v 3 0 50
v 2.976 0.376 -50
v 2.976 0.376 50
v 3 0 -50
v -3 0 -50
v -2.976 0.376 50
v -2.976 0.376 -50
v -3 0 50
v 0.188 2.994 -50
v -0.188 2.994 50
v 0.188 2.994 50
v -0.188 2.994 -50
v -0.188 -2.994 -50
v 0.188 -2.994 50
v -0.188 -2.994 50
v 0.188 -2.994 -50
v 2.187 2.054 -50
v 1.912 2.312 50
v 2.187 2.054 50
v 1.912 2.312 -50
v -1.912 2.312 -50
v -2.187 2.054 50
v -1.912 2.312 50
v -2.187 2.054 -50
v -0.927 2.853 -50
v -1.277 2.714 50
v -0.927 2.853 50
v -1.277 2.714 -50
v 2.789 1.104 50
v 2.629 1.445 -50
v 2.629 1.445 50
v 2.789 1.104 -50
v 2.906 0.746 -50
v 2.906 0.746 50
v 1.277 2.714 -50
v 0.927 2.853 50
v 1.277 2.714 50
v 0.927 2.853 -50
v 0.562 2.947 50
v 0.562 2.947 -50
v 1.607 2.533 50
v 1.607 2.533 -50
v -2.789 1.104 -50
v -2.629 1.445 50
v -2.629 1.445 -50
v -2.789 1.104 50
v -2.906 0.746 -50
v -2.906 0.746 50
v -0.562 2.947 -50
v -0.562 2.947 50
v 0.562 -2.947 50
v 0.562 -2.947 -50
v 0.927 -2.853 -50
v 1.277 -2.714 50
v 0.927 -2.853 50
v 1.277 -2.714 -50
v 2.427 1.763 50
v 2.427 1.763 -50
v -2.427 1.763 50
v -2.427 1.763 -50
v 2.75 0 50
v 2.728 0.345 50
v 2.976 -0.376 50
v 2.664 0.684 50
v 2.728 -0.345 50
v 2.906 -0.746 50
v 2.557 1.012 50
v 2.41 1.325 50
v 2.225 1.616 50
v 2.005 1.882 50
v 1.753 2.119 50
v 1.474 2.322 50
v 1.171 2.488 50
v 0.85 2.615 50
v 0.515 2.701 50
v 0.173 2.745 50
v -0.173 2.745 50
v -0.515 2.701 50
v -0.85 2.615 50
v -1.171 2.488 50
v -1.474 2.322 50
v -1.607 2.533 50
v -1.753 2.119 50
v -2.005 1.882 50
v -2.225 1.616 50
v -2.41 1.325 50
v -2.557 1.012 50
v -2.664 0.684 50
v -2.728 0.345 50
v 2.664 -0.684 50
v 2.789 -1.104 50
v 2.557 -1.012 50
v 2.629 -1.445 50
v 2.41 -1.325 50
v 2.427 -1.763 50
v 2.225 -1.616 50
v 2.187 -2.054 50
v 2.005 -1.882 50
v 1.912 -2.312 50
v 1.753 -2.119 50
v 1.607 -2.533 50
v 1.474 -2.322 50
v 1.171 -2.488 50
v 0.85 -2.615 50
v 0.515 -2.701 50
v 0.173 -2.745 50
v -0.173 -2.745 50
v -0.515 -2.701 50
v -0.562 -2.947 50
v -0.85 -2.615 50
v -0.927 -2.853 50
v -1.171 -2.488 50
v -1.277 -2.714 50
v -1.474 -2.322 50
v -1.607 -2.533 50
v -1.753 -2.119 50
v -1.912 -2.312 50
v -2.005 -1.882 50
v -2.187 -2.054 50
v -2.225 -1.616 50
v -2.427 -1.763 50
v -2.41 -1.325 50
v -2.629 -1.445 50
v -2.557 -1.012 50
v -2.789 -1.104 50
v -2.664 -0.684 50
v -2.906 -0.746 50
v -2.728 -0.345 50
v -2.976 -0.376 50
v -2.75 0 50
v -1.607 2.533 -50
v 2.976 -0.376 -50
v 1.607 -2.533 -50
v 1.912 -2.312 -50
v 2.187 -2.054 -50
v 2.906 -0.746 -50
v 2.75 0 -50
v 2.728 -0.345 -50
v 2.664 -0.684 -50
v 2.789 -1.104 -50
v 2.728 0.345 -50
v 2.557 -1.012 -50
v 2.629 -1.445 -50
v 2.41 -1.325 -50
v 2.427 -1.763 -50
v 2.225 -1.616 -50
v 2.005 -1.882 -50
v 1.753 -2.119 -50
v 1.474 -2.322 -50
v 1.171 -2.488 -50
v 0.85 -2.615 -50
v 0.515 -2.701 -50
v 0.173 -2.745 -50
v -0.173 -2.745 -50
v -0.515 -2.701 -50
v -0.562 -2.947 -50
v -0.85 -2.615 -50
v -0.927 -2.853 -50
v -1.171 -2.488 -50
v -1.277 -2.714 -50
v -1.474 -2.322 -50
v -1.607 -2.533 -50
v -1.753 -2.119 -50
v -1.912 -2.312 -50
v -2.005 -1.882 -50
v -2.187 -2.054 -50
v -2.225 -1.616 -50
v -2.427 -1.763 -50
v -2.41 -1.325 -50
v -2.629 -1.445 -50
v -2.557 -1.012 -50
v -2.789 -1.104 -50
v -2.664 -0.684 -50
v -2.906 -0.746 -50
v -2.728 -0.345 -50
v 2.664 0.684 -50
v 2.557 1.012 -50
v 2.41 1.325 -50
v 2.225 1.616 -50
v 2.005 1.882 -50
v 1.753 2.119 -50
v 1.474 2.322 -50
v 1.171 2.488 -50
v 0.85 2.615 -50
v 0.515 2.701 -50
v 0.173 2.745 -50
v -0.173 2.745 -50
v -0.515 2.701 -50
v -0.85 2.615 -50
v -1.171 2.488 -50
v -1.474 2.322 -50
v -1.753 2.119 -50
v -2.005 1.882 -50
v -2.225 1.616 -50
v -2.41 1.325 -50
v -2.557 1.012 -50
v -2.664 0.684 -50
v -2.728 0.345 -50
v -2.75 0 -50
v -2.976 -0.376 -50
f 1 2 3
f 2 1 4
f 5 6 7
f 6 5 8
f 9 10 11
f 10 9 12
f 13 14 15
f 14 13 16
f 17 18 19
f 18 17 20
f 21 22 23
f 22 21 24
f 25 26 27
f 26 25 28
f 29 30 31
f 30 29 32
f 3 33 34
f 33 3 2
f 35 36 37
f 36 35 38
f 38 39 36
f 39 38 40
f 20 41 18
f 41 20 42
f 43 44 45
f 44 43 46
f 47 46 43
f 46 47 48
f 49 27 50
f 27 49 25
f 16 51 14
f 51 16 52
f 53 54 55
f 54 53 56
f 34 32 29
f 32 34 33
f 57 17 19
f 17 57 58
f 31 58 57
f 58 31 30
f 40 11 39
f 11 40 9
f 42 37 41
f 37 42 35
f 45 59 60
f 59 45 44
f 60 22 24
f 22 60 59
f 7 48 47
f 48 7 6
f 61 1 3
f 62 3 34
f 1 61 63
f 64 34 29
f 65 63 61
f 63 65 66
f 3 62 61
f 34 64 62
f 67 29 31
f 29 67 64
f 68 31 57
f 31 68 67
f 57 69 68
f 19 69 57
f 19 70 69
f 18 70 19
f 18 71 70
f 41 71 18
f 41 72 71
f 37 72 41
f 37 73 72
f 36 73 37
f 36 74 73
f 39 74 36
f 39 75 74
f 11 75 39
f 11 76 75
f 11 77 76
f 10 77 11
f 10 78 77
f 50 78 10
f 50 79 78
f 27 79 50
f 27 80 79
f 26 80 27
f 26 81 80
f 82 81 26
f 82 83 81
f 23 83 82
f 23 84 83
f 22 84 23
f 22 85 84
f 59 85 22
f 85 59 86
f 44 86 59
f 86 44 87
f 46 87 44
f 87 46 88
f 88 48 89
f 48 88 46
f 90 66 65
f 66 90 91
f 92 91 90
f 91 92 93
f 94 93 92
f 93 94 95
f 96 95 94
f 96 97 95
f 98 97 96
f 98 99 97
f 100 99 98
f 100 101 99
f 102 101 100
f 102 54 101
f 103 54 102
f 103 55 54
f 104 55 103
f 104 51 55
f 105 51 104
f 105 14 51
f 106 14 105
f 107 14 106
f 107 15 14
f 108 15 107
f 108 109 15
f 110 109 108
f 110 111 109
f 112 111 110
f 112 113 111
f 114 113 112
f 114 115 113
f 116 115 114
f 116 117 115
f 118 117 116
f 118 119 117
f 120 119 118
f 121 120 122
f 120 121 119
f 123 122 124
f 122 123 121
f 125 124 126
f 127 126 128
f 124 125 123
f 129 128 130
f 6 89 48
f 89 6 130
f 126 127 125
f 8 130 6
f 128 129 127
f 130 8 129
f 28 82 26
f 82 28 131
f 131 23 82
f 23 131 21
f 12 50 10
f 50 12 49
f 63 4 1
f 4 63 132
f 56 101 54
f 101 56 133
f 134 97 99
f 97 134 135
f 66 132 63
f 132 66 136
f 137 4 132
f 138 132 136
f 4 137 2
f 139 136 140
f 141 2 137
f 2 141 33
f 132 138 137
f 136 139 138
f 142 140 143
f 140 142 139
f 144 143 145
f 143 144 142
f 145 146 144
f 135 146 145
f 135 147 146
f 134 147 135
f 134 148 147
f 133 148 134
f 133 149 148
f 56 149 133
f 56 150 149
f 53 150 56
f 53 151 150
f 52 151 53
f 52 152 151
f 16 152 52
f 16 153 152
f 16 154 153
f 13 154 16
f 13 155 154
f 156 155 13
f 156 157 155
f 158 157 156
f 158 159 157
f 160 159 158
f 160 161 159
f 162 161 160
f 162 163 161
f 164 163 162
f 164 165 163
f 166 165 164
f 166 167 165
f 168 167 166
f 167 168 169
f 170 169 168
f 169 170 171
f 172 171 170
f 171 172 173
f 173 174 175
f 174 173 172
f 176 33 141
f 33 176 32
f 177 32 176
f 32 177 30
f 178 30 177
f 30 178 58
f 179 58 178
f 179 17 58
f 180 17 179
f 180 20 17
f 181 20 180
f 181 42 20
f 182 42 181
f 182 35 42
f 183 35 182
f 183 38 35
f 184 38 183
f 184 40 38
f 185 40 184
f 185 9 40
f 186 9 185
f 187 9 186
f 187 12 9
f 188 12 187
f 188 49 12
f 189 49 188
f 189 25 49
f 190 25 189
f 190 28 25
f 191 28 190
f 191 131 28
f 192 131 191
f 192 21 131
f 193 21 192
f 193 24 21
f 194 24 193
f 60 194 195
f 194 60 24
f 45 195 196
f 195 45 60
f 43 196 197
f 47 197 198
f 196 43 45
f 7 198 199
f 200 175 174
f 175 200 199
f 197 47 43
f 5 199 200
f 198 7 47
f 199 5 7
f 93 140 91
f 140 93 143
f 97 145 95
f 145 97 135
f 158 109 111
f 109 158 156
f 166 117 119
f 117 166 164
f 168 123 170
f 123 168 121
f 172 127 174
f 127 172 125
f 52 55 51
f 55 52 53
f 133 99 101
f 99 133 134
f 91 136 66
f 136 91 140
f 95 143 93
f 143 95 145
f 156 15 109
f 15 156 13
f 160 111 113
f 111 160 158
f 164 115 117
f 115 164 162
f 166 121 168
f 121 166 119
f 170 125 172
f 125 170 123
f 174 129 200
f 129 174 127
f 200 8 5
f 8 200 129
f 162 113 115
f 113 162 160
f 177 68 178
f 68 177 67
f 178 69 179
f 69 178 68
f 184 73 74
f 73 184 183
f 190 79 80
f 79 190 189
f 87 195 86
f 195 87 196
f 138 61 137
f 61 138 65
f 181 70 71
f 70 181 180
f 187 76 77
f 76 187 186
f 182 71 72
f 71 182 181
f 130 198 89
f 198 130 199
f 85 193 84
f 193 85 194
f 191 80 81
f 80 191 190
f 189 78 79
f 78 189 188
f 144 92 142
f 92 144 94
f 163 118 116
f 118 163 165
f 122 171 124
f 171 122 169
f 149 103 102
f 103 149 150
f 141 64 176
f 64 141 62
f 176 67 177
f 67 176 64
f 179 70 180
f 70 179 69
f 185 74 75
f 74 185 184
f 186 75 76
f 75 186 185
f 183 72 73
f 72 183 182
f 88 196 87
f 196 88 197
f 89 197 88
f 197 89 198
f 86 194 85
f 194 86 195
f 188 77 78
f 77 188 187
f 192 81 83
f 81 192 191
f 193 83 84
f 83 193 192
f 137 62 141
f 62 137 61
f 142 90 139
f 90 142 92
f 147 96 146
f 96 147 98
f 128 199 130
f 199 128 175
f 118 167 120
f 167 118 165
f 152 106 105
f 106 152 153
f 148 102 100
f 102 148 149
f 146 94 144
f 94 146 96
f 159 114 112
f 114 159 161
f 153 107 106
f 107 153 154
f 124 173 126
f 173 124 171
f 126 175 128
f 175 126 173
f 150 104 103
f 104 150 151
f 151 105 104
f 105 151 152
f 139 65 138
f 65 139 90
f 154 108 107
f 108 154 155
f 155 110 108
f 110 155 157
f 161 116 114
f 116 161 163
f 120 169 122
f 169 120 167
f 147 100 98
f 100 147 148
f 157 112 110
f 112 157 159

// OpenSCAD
$fn = 50;


difference() {
	union() {
		translate(v = [0, 0, -50.0000000000]) {
			cylinder(h = 100, r = 3.0000000000);
		}
	}
	union() {
		translate(v = [0, 0, -100.0000000000]) {
			cylinder(h = 200, r = 2.7500000000);
		}
	}
}
